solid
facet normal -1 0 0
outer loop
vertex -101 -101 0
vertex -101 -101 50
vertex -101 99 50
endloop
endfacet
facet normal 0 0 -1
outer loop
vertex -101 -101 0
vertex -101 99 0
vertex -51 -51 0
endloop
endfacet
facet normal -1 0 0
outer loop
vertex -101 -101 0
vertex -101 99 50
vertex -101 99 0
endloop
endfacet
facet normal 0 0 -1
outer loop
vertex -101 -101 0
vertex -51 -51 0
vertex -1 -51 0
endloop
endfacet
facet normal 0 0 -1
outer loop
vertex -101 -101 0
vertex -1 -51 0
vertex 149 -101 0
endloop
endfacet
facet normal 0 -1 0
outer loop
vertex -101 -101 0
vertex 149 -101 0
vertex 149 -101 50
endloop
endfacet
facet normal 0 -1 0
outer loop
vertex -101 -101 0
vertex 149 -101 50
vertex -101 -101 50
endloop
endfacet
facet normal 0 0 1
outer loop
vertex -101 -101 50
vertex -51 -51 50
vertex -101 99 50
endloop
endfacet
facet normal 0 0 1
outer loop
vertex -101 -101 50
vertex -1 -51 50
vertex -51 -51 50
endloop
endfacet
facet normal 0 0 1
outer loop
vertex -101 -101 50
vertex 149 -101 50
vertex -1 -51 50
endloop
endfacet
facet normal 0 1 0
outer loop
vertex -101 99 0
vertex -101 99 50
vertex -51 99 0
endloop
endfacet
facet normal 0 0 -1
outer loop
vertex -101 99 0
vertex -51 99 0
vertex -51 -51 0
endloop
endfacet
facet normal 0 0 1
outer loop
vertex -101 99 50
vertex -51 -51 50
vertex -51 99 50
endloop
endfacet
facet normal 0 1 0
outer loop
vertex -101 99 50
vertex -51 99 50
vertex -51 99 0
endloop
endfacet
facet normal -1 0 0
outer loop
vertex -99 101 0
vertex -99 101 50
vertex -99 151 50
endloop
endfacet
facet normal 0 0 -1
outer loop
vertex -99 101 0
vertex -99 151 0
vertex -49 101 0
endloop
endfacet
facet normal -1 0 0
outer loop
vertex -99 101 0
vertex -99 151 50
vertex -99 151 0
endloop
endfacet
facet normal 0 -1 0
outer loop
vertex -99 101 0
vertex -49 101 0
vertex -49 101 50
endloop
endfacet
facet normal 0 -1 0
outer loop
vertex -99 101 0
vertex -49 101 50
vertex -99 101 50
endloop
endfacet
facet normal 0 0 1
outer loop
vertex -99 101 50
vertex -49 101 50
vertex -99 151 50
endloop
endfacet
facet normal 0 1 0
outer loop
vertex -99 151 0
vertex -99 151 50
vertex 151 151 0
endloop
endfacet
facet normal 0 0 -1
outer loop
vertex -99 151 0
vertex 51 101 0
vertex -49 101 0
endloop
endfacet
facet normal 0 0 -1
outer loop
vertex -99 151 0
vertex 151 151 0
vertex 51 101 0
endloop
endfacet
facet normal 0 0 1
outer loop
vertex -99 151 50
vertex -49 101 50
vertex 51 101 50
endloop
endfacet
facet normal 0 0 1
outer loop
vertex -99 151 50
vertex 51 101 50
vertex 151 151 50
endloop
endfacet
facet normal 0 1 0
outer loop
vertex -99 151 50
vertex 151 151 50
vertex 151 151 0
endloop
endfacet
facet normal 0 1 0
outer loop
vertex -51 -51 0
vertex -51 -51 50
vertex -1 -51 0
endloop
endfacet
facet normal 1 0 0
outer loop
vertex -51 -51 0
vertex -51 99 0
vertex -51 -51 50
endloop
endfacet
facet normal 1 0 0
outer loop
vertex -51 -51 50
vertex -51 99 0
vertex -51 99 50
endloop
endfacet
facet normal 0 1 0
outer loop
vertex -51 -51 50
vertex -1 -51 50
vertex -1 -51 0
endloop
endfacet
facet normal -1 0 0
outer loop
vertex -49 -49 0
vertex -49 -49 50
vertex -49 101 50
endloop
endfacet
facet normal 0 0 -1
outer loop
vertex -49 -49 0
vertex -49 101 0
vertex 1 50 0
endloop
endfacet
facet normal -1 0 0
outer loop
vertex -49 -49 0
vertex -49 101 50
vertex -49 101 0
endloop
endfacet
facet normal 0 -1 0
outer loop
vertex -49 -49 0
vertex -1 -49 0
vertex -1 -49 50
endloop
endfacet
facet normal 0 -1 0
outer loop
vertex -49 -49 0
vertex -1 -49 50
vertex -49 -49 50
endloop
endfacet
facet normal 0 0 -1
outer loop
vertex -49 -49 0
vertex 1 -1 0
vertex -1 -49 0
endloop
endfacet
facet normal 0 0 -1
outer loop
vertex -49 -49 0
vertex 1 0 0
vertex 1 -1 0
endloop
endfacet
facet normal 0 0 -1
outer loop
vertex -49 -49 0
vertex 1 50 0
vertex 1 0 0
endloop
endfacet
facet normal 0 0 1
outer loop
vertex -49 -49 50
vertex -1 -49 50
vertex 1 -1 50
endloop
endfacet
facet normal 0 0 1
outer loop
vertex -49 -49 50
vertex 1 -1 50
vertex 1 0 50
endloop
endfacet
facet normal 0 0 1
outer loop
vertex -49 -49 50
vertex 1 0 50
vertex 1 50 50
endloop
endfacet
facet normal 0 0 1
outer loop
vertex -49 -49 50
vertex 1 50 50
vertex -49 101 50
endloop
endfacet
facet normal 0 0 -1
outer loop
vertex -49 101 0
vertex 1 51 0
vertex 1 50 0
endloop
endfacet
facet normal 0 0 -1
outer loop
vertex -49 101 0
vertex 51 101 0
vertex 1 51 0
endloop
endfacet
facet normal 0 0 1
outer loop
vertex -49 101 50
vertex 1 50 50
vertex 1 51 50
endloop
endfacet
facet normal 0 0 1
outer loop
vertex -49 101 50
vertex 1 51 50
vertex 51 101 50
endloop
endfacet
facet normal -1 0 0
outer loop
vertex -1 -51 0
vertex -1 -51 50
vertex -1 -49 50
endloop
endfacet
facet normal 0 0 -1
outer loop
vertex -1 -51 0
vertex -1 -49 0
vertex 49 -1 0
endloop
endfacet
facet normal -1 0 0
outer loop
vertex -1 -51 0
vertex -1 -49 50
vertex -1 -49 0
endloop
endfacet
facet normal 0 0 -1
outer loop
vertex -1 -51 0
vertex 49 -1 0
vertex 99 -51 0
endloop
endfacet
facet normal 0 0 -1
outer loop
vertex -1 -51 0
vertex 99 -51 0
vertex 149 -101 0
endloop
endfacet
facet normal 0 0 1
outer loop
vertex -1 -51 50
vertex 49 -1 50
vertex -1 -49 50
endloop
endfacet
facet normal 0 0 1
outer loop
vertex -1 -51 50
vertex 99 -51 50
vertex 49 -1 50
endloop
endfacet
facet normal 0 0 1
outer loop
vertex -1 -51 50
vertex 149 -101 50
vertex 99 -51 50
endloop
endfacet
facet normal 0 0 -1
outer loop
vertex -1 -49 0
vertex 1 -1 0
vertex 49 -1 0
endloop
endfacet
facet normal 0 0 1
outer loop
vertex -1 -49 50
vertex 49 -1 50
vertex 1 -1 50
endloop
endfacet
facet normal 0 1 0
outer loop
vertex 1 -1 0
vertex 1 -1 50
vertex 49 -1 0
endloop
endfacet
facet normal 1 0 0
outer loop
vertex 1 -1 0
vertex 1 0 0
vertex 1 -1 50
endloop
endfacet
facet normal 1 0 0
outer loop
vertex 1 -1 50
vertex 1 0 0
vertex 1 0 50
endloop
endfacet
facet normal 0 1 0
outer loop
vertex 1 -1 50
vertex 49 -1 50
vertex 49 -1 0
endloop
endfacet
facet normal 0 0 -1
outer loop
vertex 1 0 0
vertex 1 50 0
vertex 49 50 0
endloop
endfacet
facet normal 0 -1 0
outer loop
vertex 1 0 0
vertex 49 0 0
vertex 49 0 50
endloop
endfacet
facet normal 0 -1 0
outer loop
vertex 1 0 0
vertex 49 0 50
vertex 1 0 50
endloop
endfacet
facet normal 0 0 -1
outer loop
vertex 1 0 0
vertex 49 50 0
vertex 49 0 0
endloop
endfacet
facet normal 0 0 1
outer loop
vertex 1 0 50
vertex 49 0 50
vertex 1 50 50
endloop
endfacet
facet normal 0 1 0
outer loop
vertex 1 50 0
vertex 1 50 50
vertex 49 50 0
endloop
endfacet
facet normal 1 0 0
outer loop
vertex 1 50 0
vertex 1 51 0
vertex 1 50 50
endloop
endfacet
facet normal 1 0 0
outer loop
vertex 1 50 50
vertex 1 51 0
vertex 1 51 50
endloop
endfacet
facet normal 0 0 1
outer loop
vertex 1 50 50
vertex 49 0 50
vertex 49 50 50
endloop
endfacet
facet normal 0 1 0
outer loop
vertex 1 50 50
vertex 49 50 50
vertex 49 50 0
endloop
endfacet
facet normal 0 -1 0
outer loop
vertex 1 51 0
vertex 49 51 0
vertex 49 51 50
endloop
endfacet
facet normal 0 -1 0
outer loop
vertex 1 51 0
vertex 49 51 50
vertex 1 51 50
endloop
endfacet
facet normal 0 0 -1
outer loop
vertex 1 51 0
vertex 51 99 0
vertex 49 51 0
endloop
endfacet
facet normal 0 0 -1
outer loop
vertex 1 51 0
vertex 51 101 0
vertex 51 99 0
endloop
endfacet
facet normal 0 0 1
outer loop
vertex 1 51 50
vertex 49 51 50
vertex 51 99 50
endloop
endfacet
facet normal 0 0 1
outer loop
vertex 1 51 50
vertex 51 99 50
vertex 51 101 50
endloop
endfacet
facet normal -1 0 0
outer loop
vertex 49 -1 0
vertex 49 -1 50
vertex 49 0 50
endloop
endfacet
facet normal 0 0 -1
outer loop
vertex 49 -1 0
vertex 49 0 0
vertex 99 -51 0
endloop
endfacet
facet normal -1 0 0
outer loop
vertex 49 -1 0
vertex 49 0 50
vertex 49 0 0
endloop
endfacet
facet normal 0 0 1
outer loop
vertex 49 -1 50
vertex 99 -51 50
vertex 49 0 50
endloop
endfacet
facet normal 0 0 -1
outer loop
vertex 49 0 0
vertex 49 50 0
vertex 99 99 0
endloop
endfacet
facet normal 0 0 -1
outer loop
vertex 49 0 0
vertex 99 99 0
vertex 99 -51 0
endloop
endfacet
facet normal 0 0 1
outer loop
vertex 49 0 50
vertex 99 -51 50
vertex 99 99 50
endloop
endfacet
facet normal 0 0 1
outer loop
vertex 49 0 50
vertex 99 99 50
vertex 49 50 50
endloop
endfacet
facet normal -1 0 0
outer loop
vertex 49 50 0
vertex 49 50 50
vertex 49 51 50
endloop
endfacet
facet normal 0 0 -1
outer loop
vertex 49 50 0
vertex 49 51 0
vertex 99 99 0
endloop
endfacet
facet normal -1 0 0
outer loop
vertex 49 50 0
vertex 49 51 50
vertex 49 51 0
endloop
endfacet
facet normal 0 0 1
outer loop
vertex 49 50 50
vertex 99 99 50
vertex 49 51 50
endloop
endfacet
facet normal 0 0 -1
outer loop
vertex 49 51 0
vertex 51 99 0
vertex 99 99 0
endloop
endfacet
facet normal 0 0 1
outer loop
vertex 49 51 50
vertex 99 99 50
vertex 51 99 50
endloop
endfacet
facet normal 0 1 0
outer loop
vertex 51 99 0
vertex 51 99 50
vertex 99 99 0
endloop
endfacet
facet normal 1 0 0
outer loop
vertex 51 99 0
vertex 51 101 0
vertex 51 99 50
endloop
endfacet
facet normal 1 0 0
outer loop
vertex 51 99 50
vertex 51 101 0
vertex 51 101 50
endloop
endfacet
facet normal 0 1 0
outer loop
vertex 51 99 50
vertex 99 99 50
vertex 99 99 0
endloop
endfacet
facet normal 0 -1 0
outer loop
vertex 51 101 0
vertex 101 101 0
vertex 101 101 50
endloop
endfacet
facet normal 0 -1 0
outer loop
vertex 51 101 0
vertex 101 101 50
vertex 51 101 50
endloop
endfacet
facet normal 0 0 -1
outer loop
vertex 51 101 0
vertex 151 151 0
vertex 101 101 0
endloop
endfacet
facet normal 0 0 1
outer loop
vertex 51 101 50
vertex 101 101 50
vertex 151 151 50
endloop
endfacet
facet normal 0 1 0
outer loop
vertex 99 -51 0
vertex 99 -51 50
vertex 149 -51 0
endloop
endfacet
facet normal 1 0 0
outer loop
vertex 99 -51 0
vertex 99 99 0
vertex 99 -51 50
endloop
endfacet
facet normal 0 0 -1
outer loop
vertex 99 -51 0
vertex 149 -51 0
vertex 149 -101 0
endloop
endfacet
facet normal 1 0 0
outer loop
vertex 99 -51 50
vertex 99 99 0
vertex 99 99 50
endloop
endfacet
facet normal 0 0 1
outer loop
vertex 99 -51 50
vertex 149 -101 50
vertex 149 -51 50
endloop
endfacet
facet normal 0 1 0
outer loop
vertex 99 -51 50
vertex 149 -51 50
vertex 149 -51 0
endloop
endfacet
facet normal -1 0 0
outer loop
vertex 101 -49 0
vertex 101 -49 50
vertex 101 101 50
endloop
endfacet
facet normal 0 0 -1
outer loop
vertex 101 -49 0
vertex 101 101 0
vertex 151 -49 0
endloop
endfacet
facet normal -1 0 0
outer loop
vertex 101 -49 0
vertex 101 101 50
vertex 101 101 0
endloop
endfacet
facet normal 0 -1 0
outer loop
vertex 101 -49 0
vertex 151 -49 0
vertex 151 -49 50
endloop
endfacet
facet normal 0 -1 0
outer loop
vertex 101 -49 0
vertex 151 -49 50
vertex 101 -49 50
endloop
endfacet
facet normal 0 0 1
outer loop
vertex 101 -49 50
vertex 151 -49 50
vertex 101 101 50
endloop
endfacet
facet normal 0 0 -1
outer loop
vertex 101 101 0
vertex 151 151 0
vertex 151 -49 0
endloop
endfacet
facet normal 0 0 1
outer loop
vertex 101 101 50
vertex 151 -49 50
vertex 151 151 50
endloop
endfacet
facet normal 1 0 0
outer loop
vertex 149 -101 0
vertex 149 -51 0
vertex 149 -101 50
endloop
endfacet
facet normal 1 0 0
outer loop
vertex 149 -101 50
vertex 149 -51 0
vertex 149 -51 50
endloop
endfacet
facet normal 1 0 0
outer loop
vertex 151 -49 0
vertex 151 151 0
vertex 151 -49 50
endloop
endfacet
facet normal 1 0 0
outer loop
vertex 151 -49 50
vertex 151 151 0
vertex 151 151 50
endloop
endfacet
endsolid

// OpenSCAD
length = 50;
width = 50;
height = 50;

module square(length, width, height)
{
    cube([length, width, height]);
}


module create_shape(length, width, height , level)
{
    
    cube([length, width, height]); 
    translate([length, 0, 0]) {        
        cube([length , width * level, height]);  
    
}
}
 

color("red") square(length, width, height);


rotate([0,0,0]) {
    translate([0 - 1, -50- 1, 0]) {        
            create_shape(length, width, height, 3);
        }
}

rotate([0,0,-180]) {
    translate([-50- 1, -100- 1 , 0]) {        
            create_shape(length, width , height, 3);
        }
}


rotate([0,0,0]) {
    translate([-100 - 1, -100 - 1, 0]) {        
            color("green") cube([length, width * 4, height]); 
            translate([length, 0, 0]) {        
                color("green") cube([length *4 , width , height]);  
                }
           
            }
            
}

rotate([0,0,-180]) {
    translate([-150 - 1, -150 - 1, 0]) {        
            color("green") cube([length, width * 4, height]); 
            translate([length, 0, 0]) {        
                color("green") cube([length *4 , width , height]);  
                }
           
            }
            
}
